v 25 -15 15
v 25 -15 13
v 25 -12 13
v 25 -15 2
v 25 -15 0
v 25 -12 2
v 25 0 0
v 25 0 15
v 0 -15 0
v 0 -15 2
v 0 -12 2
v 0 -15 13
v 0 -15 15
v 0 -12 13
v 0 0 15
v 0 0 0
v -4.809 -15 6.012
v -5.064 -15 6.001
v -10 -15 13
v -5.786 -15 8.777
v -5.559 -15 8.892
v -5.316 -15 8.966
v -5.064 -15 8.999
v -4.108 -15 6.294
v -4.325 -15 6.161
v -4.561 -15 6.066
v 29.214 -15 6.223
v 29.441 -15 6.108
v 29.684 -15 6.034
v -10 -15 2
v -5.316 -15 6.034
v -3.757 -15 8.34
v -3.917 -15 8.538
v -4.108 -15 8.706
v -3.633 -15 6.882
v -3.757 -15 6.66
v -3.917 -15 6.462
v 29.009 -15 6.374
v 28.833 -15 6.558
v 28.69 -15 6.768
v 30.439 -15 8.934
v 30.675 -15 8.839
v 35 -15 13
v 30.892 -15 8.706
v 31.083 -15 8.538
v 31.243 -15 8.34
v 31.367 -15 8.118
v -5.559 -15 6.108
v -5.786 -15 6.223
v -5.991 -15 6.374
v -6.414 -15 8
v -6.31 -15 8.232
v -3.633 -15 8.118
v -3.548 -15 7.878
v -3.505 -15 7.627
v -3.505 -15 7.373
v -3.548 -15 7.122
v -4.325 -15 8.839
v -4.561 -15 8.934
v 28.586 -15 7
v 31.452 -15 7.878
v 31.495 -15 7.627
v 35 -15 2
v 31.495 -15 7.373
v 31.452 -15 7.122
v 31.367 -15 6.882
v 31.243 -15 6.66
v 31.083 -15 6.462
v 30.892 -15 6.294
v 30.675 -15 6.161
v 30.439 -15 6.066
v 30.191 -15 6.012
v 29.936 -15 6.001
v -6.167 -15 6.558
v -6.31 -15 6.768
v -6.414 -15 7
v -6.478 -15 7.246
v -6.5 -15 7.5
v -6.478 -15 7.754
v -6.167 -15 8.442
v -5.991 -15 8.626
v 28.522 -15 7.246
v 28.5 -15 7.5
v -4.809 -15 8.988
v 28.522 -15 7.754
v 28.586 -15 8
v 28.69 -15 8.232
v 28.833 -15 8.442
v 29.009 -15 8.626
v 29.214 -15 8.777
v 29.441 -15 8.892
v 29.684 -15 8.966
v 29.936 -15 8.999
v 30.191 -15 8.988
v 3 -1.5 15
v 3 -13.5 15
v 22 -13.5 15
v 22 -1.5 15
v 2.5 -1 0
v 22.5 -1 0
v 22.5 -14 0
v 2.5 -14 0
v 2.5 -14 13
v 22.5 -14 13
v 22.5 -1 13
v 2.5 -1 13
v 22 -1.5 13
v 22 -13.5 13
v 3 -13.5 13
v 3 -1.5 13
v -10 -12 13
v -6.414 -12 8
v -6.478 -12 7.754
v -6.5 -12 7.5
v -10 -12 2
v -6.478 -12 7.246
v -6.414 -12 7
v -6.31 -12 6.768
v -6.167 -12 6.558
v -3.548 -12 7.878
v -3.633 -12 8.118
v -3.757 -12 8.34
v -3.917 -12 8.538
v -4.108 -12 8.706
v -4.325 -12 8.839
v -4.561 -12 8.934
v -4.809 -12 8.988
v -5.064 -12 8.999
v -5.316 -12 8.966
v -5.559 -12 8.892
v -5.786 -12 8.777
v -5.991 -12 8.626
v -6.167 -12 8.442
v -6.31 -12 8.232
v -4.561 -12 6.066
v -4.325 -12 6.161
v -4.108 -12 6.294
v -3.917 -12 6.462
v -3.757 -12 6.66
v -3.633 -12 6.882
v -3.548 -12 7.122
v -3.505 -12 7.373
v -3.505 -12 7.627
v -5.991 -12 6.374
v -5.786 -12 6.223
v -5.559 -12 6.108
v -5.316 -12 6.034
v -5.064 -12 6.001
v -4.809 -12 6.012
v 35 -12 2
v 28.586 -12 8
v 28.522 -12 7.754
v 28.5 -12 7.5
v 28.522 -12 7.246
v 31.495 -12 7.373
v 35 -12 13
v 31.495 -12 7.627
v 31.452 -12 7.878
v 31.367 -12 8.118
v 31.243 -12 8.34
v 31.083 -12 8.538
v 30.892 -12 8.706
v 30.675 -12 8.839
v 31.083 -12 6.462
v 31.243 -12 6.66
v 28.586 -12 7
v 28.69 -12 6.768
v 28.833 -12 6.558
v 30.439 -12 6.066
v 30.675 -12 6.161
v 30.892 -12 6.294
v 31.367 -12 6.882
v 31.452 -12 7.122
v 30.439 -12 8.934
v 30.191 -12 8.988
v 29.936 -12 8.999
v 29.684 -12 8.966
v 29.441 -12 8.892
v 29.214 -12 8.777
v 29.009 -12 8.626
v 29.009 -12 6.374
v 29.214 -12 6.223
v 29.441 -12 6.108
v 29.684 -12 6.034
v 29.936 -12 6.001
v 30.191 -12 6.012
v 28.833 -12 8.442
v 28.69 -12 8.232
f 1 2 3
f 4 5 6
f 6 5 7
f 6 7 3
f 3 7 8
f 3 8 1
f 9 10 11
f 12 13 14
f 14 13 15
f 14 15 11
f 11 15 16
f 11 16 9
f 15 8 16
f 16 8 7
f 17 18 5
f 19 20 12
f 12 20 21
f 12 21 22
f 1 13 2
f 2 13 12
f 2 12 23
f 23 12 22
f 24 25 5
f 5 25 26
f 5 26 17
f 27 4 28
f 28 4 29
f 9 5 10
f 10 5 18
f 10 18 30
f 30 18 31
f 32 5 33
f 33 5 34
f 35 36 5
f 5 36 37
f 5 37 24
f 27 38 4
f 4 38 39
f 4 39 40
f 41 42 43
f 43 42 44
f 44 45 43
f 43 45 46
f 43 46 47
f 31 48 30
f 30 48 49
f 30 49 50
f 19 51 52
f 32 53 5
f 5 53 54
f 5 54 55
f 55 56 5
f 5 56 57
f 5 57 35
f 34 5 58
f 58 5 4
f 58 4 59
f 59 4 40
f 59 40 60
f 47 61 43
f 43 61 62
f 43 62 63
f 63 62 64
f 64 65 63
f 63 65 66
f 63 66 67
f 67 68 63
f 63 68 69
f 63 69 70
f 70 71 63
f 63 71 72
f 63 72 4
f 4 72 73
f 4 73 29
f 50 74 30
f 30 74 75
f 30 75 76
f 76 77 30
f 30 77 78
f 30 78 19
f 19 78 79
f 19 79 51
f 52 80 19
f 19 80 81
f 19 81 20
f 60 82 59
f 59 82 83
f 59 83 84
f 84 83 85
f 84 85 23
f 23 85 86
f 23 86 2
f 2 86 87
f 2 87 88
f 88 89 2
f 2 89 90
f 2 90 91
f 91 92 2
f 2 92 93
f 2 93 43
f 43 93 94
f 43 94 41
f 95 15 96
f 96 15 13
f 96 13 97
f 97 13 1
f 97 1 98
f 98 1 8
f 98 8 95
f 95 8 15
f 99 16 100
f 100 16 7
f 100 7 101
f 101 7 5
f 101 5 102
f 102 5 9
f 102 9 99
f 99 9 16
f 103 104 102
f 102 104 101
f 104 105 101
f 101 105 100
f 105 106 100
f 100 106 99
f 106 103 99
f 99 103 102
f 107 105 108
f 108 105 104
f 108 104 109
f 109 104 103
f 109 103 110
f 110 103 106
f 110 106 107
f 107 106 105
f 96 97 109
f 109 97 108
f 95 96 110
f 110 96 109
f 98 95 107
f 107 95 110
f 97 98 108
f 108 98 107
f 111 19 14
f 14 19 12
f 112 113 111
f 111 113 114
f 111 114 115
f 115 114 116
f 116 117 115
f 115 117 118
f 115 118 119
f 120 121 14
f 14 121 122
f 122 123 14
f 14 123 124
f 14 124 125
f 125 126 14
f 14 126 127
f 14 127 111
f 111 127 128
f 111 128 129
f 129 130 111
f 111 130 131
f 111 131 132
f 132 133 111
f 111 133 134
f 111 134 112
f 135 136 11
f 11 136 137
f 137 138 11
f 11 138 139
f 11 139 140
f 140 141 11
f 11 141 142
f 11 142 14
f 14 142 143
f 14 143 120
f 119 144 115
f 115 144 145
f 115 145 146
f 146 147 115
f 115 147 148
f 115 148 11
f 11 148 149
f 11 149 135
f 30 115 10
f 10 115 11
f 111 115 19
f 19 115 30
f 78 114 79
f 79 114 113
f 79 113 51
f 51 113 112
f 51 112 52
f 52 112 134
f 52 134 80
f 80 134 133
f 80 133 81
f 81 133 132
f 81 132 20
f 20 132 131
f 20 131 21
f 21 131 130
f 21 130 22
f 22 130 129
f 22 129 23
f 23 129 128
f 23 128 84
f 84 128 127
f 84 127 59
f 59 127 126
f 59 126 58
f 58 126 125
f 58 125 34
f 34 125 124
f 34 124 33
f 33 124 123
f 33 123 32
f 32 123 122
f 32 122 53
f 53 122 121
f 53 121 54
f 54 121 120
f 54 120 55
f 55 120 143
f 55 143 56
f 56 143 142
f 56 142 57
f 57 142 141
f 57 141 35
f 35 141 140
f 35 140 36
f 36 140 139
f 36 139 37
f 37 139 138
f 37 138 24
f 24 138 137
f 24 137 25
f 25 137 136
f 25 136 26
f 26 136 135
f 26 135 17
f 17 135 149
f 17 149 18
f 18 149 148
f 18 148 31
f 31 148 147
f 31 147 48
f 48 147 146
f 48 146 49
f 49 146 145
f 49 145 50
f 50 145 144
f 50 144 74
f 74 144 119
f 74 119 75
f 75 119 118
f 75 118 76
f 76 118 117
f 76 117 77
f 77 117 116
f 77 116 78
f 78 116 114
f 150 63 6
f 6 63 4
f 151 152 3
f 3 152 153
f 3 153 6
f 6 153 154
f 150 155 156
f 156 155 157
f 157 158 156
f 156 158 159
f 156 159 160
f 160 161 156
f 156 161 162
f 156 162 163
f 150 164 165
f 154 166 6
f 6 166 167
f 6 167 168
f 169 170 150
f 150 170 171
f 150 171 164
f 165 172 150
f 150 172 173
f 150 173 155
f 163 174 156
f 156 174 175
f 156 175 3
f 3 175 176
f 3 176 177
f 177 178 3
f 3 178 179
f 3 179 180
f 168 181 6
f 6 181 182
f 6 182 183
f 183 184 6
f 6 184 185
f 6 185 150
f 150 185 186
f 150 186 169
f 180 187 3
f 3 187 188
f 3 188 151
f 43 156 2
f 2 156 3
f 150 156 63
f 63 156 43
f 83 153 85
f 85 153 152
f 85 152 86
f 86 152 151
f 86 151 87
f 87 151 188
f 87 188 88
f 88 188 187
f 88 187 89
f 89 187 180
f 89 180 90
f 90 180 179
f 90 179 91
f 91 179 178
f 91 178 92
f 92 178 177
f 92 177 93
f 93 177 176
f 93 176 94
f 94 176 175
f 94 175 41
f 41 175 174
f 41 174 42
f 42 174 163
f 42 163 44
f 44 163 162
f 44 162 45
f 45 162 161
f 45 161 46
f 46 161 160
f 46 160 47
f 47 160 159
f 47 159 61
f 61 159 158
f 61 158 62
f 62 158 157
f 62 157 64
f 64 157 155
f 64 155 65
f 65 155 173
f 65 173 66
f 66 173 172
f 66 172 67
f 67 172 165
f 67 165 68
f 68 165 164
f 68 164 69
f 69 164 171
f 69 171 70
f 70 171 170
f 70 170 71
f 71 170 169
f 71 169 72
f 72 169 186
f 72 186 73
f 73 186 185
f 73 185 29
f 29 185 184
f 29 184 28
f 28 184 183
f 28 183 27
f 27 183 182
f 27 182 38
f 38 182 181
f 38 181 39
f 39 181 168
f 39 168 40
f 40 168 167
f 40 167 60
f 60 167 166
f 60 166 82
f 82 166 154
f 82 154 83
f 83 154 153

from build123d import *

# Parameters (mm, degrees)
SKETCH1_W           = 25
SKETCH1_H           = 15
BOSS_EXTRUDE1_DEPTH = 15
SKETCH2_W           = 20
SKETCH2_H           = 13
CUT_EXTRUDE1_DEPTH  = 13
SKETCH3_W           = 19
SKETCH3_H           = 12
CUT_EXTRUDE2_DEPTH  = 33.787192622
SKETCH10_W          = 11
SKETCH10_H          = 3
BOSS_EXTRUDE5_DEPTH = 10
SKETCH11_R          = 1.5
CUT_EXTRUDE4_DEPTH  = 32.527765541
SKETCH13_W          = 11
SKETCH13_H          = 3
BOSS_EXTRUDE6_DEPTH = 10
SKETCH14_R          = 1.5
CUT_EXTRUDE5_DEPTH  = 40.924929555


with BuildPart() as part:
    # Sketch1 → Boss-Extrude1 (new body)
    with BuildSketch(Plane.XY):
        with Locations((12.5, -7.5)):
            Rectangle(SKETCH1_W, SKETCH1_H)
    extrude(amount=BOSS_EXTRUDE1_DEPTH)

    # Sketch2 → Cut-Extrude1 (cut)
    with BuildSketch(Plane(origin=(0, 0, 0), x_dir=(-1, 0, 0), z_dir=(0, 0, -1))):
        with Locations((-12.5, -7.5)):
            Rectangle(SKETCH2_W, SKETCH2_H)
    extrude(amount=-CUT_EXTRUDE1_DEPTH, mode=Mode.SUBTRACT)

    # Sketch3 → Cut-Extrude2 (cut, through all)
    with BuildSketch(Plane.XY.offset(15)):
        with Locations((12.5, -7.5)):
            Rectangle(SKETCH3_W, SKETCH3_H)
    extrude(amount=-CUT_EXTRUDE2_DEPTH, mode=Mode.SUBTRACT)

    # Sketch10 → Boss-Extrude5 (add)
    with BuildSketch(Plane.ZY):
        with Locations((7.5, -13.5)):
            Rectangle(SKETCH10_W, SKETCH10_H)
    extrude(amount=BOSS_EXTRUDE5_DEPTH)

    # Sketch11 → Cut-Extrude4 (cut, through all)
    with BuildSketch(Plane(origin=(0, -12, 0), x_dir=(1, 0, 0), z_dir=(0, 1, 0))):
        with Locations(Location((-5, -7.5, 0), (0, 0, 180))):
            Circle(SKETCH11_R)
    extrude(amount=-CUT_EXTRUDE4_DEPTH, mode=Mode.SUBTRACT)

    # Sketch13 → Boss-Extrude6 (add)
    with BuildSketch(Plane(origin=(25, 0, 0), x_dir=(0, 0, -1), z_dir=(1, 0, 0))):
        with Locations((-7.5, -13.5)):
            Rectangle(SKETCH13_W, SKETCH13_H)
    extrude(amount=BOSS_EXTRUDE6_DEPTH)

    # Sketch14 → Cut-Extrude5 (cut, through all)
    with BuildSketch(Plane(origin=(0, -12, 0), x_dir=(1, 0, 0), z_dir=(0, 1, 0))):
        with Locations(Location((30, -7.5, 0), (0, 0, 180))):
            Circle(SKETCH14_R)
    extrude(amount=-CUT_EXTRUDE5_DEPTH, mode=Mode.SUBTRACT)


solid = part.part
